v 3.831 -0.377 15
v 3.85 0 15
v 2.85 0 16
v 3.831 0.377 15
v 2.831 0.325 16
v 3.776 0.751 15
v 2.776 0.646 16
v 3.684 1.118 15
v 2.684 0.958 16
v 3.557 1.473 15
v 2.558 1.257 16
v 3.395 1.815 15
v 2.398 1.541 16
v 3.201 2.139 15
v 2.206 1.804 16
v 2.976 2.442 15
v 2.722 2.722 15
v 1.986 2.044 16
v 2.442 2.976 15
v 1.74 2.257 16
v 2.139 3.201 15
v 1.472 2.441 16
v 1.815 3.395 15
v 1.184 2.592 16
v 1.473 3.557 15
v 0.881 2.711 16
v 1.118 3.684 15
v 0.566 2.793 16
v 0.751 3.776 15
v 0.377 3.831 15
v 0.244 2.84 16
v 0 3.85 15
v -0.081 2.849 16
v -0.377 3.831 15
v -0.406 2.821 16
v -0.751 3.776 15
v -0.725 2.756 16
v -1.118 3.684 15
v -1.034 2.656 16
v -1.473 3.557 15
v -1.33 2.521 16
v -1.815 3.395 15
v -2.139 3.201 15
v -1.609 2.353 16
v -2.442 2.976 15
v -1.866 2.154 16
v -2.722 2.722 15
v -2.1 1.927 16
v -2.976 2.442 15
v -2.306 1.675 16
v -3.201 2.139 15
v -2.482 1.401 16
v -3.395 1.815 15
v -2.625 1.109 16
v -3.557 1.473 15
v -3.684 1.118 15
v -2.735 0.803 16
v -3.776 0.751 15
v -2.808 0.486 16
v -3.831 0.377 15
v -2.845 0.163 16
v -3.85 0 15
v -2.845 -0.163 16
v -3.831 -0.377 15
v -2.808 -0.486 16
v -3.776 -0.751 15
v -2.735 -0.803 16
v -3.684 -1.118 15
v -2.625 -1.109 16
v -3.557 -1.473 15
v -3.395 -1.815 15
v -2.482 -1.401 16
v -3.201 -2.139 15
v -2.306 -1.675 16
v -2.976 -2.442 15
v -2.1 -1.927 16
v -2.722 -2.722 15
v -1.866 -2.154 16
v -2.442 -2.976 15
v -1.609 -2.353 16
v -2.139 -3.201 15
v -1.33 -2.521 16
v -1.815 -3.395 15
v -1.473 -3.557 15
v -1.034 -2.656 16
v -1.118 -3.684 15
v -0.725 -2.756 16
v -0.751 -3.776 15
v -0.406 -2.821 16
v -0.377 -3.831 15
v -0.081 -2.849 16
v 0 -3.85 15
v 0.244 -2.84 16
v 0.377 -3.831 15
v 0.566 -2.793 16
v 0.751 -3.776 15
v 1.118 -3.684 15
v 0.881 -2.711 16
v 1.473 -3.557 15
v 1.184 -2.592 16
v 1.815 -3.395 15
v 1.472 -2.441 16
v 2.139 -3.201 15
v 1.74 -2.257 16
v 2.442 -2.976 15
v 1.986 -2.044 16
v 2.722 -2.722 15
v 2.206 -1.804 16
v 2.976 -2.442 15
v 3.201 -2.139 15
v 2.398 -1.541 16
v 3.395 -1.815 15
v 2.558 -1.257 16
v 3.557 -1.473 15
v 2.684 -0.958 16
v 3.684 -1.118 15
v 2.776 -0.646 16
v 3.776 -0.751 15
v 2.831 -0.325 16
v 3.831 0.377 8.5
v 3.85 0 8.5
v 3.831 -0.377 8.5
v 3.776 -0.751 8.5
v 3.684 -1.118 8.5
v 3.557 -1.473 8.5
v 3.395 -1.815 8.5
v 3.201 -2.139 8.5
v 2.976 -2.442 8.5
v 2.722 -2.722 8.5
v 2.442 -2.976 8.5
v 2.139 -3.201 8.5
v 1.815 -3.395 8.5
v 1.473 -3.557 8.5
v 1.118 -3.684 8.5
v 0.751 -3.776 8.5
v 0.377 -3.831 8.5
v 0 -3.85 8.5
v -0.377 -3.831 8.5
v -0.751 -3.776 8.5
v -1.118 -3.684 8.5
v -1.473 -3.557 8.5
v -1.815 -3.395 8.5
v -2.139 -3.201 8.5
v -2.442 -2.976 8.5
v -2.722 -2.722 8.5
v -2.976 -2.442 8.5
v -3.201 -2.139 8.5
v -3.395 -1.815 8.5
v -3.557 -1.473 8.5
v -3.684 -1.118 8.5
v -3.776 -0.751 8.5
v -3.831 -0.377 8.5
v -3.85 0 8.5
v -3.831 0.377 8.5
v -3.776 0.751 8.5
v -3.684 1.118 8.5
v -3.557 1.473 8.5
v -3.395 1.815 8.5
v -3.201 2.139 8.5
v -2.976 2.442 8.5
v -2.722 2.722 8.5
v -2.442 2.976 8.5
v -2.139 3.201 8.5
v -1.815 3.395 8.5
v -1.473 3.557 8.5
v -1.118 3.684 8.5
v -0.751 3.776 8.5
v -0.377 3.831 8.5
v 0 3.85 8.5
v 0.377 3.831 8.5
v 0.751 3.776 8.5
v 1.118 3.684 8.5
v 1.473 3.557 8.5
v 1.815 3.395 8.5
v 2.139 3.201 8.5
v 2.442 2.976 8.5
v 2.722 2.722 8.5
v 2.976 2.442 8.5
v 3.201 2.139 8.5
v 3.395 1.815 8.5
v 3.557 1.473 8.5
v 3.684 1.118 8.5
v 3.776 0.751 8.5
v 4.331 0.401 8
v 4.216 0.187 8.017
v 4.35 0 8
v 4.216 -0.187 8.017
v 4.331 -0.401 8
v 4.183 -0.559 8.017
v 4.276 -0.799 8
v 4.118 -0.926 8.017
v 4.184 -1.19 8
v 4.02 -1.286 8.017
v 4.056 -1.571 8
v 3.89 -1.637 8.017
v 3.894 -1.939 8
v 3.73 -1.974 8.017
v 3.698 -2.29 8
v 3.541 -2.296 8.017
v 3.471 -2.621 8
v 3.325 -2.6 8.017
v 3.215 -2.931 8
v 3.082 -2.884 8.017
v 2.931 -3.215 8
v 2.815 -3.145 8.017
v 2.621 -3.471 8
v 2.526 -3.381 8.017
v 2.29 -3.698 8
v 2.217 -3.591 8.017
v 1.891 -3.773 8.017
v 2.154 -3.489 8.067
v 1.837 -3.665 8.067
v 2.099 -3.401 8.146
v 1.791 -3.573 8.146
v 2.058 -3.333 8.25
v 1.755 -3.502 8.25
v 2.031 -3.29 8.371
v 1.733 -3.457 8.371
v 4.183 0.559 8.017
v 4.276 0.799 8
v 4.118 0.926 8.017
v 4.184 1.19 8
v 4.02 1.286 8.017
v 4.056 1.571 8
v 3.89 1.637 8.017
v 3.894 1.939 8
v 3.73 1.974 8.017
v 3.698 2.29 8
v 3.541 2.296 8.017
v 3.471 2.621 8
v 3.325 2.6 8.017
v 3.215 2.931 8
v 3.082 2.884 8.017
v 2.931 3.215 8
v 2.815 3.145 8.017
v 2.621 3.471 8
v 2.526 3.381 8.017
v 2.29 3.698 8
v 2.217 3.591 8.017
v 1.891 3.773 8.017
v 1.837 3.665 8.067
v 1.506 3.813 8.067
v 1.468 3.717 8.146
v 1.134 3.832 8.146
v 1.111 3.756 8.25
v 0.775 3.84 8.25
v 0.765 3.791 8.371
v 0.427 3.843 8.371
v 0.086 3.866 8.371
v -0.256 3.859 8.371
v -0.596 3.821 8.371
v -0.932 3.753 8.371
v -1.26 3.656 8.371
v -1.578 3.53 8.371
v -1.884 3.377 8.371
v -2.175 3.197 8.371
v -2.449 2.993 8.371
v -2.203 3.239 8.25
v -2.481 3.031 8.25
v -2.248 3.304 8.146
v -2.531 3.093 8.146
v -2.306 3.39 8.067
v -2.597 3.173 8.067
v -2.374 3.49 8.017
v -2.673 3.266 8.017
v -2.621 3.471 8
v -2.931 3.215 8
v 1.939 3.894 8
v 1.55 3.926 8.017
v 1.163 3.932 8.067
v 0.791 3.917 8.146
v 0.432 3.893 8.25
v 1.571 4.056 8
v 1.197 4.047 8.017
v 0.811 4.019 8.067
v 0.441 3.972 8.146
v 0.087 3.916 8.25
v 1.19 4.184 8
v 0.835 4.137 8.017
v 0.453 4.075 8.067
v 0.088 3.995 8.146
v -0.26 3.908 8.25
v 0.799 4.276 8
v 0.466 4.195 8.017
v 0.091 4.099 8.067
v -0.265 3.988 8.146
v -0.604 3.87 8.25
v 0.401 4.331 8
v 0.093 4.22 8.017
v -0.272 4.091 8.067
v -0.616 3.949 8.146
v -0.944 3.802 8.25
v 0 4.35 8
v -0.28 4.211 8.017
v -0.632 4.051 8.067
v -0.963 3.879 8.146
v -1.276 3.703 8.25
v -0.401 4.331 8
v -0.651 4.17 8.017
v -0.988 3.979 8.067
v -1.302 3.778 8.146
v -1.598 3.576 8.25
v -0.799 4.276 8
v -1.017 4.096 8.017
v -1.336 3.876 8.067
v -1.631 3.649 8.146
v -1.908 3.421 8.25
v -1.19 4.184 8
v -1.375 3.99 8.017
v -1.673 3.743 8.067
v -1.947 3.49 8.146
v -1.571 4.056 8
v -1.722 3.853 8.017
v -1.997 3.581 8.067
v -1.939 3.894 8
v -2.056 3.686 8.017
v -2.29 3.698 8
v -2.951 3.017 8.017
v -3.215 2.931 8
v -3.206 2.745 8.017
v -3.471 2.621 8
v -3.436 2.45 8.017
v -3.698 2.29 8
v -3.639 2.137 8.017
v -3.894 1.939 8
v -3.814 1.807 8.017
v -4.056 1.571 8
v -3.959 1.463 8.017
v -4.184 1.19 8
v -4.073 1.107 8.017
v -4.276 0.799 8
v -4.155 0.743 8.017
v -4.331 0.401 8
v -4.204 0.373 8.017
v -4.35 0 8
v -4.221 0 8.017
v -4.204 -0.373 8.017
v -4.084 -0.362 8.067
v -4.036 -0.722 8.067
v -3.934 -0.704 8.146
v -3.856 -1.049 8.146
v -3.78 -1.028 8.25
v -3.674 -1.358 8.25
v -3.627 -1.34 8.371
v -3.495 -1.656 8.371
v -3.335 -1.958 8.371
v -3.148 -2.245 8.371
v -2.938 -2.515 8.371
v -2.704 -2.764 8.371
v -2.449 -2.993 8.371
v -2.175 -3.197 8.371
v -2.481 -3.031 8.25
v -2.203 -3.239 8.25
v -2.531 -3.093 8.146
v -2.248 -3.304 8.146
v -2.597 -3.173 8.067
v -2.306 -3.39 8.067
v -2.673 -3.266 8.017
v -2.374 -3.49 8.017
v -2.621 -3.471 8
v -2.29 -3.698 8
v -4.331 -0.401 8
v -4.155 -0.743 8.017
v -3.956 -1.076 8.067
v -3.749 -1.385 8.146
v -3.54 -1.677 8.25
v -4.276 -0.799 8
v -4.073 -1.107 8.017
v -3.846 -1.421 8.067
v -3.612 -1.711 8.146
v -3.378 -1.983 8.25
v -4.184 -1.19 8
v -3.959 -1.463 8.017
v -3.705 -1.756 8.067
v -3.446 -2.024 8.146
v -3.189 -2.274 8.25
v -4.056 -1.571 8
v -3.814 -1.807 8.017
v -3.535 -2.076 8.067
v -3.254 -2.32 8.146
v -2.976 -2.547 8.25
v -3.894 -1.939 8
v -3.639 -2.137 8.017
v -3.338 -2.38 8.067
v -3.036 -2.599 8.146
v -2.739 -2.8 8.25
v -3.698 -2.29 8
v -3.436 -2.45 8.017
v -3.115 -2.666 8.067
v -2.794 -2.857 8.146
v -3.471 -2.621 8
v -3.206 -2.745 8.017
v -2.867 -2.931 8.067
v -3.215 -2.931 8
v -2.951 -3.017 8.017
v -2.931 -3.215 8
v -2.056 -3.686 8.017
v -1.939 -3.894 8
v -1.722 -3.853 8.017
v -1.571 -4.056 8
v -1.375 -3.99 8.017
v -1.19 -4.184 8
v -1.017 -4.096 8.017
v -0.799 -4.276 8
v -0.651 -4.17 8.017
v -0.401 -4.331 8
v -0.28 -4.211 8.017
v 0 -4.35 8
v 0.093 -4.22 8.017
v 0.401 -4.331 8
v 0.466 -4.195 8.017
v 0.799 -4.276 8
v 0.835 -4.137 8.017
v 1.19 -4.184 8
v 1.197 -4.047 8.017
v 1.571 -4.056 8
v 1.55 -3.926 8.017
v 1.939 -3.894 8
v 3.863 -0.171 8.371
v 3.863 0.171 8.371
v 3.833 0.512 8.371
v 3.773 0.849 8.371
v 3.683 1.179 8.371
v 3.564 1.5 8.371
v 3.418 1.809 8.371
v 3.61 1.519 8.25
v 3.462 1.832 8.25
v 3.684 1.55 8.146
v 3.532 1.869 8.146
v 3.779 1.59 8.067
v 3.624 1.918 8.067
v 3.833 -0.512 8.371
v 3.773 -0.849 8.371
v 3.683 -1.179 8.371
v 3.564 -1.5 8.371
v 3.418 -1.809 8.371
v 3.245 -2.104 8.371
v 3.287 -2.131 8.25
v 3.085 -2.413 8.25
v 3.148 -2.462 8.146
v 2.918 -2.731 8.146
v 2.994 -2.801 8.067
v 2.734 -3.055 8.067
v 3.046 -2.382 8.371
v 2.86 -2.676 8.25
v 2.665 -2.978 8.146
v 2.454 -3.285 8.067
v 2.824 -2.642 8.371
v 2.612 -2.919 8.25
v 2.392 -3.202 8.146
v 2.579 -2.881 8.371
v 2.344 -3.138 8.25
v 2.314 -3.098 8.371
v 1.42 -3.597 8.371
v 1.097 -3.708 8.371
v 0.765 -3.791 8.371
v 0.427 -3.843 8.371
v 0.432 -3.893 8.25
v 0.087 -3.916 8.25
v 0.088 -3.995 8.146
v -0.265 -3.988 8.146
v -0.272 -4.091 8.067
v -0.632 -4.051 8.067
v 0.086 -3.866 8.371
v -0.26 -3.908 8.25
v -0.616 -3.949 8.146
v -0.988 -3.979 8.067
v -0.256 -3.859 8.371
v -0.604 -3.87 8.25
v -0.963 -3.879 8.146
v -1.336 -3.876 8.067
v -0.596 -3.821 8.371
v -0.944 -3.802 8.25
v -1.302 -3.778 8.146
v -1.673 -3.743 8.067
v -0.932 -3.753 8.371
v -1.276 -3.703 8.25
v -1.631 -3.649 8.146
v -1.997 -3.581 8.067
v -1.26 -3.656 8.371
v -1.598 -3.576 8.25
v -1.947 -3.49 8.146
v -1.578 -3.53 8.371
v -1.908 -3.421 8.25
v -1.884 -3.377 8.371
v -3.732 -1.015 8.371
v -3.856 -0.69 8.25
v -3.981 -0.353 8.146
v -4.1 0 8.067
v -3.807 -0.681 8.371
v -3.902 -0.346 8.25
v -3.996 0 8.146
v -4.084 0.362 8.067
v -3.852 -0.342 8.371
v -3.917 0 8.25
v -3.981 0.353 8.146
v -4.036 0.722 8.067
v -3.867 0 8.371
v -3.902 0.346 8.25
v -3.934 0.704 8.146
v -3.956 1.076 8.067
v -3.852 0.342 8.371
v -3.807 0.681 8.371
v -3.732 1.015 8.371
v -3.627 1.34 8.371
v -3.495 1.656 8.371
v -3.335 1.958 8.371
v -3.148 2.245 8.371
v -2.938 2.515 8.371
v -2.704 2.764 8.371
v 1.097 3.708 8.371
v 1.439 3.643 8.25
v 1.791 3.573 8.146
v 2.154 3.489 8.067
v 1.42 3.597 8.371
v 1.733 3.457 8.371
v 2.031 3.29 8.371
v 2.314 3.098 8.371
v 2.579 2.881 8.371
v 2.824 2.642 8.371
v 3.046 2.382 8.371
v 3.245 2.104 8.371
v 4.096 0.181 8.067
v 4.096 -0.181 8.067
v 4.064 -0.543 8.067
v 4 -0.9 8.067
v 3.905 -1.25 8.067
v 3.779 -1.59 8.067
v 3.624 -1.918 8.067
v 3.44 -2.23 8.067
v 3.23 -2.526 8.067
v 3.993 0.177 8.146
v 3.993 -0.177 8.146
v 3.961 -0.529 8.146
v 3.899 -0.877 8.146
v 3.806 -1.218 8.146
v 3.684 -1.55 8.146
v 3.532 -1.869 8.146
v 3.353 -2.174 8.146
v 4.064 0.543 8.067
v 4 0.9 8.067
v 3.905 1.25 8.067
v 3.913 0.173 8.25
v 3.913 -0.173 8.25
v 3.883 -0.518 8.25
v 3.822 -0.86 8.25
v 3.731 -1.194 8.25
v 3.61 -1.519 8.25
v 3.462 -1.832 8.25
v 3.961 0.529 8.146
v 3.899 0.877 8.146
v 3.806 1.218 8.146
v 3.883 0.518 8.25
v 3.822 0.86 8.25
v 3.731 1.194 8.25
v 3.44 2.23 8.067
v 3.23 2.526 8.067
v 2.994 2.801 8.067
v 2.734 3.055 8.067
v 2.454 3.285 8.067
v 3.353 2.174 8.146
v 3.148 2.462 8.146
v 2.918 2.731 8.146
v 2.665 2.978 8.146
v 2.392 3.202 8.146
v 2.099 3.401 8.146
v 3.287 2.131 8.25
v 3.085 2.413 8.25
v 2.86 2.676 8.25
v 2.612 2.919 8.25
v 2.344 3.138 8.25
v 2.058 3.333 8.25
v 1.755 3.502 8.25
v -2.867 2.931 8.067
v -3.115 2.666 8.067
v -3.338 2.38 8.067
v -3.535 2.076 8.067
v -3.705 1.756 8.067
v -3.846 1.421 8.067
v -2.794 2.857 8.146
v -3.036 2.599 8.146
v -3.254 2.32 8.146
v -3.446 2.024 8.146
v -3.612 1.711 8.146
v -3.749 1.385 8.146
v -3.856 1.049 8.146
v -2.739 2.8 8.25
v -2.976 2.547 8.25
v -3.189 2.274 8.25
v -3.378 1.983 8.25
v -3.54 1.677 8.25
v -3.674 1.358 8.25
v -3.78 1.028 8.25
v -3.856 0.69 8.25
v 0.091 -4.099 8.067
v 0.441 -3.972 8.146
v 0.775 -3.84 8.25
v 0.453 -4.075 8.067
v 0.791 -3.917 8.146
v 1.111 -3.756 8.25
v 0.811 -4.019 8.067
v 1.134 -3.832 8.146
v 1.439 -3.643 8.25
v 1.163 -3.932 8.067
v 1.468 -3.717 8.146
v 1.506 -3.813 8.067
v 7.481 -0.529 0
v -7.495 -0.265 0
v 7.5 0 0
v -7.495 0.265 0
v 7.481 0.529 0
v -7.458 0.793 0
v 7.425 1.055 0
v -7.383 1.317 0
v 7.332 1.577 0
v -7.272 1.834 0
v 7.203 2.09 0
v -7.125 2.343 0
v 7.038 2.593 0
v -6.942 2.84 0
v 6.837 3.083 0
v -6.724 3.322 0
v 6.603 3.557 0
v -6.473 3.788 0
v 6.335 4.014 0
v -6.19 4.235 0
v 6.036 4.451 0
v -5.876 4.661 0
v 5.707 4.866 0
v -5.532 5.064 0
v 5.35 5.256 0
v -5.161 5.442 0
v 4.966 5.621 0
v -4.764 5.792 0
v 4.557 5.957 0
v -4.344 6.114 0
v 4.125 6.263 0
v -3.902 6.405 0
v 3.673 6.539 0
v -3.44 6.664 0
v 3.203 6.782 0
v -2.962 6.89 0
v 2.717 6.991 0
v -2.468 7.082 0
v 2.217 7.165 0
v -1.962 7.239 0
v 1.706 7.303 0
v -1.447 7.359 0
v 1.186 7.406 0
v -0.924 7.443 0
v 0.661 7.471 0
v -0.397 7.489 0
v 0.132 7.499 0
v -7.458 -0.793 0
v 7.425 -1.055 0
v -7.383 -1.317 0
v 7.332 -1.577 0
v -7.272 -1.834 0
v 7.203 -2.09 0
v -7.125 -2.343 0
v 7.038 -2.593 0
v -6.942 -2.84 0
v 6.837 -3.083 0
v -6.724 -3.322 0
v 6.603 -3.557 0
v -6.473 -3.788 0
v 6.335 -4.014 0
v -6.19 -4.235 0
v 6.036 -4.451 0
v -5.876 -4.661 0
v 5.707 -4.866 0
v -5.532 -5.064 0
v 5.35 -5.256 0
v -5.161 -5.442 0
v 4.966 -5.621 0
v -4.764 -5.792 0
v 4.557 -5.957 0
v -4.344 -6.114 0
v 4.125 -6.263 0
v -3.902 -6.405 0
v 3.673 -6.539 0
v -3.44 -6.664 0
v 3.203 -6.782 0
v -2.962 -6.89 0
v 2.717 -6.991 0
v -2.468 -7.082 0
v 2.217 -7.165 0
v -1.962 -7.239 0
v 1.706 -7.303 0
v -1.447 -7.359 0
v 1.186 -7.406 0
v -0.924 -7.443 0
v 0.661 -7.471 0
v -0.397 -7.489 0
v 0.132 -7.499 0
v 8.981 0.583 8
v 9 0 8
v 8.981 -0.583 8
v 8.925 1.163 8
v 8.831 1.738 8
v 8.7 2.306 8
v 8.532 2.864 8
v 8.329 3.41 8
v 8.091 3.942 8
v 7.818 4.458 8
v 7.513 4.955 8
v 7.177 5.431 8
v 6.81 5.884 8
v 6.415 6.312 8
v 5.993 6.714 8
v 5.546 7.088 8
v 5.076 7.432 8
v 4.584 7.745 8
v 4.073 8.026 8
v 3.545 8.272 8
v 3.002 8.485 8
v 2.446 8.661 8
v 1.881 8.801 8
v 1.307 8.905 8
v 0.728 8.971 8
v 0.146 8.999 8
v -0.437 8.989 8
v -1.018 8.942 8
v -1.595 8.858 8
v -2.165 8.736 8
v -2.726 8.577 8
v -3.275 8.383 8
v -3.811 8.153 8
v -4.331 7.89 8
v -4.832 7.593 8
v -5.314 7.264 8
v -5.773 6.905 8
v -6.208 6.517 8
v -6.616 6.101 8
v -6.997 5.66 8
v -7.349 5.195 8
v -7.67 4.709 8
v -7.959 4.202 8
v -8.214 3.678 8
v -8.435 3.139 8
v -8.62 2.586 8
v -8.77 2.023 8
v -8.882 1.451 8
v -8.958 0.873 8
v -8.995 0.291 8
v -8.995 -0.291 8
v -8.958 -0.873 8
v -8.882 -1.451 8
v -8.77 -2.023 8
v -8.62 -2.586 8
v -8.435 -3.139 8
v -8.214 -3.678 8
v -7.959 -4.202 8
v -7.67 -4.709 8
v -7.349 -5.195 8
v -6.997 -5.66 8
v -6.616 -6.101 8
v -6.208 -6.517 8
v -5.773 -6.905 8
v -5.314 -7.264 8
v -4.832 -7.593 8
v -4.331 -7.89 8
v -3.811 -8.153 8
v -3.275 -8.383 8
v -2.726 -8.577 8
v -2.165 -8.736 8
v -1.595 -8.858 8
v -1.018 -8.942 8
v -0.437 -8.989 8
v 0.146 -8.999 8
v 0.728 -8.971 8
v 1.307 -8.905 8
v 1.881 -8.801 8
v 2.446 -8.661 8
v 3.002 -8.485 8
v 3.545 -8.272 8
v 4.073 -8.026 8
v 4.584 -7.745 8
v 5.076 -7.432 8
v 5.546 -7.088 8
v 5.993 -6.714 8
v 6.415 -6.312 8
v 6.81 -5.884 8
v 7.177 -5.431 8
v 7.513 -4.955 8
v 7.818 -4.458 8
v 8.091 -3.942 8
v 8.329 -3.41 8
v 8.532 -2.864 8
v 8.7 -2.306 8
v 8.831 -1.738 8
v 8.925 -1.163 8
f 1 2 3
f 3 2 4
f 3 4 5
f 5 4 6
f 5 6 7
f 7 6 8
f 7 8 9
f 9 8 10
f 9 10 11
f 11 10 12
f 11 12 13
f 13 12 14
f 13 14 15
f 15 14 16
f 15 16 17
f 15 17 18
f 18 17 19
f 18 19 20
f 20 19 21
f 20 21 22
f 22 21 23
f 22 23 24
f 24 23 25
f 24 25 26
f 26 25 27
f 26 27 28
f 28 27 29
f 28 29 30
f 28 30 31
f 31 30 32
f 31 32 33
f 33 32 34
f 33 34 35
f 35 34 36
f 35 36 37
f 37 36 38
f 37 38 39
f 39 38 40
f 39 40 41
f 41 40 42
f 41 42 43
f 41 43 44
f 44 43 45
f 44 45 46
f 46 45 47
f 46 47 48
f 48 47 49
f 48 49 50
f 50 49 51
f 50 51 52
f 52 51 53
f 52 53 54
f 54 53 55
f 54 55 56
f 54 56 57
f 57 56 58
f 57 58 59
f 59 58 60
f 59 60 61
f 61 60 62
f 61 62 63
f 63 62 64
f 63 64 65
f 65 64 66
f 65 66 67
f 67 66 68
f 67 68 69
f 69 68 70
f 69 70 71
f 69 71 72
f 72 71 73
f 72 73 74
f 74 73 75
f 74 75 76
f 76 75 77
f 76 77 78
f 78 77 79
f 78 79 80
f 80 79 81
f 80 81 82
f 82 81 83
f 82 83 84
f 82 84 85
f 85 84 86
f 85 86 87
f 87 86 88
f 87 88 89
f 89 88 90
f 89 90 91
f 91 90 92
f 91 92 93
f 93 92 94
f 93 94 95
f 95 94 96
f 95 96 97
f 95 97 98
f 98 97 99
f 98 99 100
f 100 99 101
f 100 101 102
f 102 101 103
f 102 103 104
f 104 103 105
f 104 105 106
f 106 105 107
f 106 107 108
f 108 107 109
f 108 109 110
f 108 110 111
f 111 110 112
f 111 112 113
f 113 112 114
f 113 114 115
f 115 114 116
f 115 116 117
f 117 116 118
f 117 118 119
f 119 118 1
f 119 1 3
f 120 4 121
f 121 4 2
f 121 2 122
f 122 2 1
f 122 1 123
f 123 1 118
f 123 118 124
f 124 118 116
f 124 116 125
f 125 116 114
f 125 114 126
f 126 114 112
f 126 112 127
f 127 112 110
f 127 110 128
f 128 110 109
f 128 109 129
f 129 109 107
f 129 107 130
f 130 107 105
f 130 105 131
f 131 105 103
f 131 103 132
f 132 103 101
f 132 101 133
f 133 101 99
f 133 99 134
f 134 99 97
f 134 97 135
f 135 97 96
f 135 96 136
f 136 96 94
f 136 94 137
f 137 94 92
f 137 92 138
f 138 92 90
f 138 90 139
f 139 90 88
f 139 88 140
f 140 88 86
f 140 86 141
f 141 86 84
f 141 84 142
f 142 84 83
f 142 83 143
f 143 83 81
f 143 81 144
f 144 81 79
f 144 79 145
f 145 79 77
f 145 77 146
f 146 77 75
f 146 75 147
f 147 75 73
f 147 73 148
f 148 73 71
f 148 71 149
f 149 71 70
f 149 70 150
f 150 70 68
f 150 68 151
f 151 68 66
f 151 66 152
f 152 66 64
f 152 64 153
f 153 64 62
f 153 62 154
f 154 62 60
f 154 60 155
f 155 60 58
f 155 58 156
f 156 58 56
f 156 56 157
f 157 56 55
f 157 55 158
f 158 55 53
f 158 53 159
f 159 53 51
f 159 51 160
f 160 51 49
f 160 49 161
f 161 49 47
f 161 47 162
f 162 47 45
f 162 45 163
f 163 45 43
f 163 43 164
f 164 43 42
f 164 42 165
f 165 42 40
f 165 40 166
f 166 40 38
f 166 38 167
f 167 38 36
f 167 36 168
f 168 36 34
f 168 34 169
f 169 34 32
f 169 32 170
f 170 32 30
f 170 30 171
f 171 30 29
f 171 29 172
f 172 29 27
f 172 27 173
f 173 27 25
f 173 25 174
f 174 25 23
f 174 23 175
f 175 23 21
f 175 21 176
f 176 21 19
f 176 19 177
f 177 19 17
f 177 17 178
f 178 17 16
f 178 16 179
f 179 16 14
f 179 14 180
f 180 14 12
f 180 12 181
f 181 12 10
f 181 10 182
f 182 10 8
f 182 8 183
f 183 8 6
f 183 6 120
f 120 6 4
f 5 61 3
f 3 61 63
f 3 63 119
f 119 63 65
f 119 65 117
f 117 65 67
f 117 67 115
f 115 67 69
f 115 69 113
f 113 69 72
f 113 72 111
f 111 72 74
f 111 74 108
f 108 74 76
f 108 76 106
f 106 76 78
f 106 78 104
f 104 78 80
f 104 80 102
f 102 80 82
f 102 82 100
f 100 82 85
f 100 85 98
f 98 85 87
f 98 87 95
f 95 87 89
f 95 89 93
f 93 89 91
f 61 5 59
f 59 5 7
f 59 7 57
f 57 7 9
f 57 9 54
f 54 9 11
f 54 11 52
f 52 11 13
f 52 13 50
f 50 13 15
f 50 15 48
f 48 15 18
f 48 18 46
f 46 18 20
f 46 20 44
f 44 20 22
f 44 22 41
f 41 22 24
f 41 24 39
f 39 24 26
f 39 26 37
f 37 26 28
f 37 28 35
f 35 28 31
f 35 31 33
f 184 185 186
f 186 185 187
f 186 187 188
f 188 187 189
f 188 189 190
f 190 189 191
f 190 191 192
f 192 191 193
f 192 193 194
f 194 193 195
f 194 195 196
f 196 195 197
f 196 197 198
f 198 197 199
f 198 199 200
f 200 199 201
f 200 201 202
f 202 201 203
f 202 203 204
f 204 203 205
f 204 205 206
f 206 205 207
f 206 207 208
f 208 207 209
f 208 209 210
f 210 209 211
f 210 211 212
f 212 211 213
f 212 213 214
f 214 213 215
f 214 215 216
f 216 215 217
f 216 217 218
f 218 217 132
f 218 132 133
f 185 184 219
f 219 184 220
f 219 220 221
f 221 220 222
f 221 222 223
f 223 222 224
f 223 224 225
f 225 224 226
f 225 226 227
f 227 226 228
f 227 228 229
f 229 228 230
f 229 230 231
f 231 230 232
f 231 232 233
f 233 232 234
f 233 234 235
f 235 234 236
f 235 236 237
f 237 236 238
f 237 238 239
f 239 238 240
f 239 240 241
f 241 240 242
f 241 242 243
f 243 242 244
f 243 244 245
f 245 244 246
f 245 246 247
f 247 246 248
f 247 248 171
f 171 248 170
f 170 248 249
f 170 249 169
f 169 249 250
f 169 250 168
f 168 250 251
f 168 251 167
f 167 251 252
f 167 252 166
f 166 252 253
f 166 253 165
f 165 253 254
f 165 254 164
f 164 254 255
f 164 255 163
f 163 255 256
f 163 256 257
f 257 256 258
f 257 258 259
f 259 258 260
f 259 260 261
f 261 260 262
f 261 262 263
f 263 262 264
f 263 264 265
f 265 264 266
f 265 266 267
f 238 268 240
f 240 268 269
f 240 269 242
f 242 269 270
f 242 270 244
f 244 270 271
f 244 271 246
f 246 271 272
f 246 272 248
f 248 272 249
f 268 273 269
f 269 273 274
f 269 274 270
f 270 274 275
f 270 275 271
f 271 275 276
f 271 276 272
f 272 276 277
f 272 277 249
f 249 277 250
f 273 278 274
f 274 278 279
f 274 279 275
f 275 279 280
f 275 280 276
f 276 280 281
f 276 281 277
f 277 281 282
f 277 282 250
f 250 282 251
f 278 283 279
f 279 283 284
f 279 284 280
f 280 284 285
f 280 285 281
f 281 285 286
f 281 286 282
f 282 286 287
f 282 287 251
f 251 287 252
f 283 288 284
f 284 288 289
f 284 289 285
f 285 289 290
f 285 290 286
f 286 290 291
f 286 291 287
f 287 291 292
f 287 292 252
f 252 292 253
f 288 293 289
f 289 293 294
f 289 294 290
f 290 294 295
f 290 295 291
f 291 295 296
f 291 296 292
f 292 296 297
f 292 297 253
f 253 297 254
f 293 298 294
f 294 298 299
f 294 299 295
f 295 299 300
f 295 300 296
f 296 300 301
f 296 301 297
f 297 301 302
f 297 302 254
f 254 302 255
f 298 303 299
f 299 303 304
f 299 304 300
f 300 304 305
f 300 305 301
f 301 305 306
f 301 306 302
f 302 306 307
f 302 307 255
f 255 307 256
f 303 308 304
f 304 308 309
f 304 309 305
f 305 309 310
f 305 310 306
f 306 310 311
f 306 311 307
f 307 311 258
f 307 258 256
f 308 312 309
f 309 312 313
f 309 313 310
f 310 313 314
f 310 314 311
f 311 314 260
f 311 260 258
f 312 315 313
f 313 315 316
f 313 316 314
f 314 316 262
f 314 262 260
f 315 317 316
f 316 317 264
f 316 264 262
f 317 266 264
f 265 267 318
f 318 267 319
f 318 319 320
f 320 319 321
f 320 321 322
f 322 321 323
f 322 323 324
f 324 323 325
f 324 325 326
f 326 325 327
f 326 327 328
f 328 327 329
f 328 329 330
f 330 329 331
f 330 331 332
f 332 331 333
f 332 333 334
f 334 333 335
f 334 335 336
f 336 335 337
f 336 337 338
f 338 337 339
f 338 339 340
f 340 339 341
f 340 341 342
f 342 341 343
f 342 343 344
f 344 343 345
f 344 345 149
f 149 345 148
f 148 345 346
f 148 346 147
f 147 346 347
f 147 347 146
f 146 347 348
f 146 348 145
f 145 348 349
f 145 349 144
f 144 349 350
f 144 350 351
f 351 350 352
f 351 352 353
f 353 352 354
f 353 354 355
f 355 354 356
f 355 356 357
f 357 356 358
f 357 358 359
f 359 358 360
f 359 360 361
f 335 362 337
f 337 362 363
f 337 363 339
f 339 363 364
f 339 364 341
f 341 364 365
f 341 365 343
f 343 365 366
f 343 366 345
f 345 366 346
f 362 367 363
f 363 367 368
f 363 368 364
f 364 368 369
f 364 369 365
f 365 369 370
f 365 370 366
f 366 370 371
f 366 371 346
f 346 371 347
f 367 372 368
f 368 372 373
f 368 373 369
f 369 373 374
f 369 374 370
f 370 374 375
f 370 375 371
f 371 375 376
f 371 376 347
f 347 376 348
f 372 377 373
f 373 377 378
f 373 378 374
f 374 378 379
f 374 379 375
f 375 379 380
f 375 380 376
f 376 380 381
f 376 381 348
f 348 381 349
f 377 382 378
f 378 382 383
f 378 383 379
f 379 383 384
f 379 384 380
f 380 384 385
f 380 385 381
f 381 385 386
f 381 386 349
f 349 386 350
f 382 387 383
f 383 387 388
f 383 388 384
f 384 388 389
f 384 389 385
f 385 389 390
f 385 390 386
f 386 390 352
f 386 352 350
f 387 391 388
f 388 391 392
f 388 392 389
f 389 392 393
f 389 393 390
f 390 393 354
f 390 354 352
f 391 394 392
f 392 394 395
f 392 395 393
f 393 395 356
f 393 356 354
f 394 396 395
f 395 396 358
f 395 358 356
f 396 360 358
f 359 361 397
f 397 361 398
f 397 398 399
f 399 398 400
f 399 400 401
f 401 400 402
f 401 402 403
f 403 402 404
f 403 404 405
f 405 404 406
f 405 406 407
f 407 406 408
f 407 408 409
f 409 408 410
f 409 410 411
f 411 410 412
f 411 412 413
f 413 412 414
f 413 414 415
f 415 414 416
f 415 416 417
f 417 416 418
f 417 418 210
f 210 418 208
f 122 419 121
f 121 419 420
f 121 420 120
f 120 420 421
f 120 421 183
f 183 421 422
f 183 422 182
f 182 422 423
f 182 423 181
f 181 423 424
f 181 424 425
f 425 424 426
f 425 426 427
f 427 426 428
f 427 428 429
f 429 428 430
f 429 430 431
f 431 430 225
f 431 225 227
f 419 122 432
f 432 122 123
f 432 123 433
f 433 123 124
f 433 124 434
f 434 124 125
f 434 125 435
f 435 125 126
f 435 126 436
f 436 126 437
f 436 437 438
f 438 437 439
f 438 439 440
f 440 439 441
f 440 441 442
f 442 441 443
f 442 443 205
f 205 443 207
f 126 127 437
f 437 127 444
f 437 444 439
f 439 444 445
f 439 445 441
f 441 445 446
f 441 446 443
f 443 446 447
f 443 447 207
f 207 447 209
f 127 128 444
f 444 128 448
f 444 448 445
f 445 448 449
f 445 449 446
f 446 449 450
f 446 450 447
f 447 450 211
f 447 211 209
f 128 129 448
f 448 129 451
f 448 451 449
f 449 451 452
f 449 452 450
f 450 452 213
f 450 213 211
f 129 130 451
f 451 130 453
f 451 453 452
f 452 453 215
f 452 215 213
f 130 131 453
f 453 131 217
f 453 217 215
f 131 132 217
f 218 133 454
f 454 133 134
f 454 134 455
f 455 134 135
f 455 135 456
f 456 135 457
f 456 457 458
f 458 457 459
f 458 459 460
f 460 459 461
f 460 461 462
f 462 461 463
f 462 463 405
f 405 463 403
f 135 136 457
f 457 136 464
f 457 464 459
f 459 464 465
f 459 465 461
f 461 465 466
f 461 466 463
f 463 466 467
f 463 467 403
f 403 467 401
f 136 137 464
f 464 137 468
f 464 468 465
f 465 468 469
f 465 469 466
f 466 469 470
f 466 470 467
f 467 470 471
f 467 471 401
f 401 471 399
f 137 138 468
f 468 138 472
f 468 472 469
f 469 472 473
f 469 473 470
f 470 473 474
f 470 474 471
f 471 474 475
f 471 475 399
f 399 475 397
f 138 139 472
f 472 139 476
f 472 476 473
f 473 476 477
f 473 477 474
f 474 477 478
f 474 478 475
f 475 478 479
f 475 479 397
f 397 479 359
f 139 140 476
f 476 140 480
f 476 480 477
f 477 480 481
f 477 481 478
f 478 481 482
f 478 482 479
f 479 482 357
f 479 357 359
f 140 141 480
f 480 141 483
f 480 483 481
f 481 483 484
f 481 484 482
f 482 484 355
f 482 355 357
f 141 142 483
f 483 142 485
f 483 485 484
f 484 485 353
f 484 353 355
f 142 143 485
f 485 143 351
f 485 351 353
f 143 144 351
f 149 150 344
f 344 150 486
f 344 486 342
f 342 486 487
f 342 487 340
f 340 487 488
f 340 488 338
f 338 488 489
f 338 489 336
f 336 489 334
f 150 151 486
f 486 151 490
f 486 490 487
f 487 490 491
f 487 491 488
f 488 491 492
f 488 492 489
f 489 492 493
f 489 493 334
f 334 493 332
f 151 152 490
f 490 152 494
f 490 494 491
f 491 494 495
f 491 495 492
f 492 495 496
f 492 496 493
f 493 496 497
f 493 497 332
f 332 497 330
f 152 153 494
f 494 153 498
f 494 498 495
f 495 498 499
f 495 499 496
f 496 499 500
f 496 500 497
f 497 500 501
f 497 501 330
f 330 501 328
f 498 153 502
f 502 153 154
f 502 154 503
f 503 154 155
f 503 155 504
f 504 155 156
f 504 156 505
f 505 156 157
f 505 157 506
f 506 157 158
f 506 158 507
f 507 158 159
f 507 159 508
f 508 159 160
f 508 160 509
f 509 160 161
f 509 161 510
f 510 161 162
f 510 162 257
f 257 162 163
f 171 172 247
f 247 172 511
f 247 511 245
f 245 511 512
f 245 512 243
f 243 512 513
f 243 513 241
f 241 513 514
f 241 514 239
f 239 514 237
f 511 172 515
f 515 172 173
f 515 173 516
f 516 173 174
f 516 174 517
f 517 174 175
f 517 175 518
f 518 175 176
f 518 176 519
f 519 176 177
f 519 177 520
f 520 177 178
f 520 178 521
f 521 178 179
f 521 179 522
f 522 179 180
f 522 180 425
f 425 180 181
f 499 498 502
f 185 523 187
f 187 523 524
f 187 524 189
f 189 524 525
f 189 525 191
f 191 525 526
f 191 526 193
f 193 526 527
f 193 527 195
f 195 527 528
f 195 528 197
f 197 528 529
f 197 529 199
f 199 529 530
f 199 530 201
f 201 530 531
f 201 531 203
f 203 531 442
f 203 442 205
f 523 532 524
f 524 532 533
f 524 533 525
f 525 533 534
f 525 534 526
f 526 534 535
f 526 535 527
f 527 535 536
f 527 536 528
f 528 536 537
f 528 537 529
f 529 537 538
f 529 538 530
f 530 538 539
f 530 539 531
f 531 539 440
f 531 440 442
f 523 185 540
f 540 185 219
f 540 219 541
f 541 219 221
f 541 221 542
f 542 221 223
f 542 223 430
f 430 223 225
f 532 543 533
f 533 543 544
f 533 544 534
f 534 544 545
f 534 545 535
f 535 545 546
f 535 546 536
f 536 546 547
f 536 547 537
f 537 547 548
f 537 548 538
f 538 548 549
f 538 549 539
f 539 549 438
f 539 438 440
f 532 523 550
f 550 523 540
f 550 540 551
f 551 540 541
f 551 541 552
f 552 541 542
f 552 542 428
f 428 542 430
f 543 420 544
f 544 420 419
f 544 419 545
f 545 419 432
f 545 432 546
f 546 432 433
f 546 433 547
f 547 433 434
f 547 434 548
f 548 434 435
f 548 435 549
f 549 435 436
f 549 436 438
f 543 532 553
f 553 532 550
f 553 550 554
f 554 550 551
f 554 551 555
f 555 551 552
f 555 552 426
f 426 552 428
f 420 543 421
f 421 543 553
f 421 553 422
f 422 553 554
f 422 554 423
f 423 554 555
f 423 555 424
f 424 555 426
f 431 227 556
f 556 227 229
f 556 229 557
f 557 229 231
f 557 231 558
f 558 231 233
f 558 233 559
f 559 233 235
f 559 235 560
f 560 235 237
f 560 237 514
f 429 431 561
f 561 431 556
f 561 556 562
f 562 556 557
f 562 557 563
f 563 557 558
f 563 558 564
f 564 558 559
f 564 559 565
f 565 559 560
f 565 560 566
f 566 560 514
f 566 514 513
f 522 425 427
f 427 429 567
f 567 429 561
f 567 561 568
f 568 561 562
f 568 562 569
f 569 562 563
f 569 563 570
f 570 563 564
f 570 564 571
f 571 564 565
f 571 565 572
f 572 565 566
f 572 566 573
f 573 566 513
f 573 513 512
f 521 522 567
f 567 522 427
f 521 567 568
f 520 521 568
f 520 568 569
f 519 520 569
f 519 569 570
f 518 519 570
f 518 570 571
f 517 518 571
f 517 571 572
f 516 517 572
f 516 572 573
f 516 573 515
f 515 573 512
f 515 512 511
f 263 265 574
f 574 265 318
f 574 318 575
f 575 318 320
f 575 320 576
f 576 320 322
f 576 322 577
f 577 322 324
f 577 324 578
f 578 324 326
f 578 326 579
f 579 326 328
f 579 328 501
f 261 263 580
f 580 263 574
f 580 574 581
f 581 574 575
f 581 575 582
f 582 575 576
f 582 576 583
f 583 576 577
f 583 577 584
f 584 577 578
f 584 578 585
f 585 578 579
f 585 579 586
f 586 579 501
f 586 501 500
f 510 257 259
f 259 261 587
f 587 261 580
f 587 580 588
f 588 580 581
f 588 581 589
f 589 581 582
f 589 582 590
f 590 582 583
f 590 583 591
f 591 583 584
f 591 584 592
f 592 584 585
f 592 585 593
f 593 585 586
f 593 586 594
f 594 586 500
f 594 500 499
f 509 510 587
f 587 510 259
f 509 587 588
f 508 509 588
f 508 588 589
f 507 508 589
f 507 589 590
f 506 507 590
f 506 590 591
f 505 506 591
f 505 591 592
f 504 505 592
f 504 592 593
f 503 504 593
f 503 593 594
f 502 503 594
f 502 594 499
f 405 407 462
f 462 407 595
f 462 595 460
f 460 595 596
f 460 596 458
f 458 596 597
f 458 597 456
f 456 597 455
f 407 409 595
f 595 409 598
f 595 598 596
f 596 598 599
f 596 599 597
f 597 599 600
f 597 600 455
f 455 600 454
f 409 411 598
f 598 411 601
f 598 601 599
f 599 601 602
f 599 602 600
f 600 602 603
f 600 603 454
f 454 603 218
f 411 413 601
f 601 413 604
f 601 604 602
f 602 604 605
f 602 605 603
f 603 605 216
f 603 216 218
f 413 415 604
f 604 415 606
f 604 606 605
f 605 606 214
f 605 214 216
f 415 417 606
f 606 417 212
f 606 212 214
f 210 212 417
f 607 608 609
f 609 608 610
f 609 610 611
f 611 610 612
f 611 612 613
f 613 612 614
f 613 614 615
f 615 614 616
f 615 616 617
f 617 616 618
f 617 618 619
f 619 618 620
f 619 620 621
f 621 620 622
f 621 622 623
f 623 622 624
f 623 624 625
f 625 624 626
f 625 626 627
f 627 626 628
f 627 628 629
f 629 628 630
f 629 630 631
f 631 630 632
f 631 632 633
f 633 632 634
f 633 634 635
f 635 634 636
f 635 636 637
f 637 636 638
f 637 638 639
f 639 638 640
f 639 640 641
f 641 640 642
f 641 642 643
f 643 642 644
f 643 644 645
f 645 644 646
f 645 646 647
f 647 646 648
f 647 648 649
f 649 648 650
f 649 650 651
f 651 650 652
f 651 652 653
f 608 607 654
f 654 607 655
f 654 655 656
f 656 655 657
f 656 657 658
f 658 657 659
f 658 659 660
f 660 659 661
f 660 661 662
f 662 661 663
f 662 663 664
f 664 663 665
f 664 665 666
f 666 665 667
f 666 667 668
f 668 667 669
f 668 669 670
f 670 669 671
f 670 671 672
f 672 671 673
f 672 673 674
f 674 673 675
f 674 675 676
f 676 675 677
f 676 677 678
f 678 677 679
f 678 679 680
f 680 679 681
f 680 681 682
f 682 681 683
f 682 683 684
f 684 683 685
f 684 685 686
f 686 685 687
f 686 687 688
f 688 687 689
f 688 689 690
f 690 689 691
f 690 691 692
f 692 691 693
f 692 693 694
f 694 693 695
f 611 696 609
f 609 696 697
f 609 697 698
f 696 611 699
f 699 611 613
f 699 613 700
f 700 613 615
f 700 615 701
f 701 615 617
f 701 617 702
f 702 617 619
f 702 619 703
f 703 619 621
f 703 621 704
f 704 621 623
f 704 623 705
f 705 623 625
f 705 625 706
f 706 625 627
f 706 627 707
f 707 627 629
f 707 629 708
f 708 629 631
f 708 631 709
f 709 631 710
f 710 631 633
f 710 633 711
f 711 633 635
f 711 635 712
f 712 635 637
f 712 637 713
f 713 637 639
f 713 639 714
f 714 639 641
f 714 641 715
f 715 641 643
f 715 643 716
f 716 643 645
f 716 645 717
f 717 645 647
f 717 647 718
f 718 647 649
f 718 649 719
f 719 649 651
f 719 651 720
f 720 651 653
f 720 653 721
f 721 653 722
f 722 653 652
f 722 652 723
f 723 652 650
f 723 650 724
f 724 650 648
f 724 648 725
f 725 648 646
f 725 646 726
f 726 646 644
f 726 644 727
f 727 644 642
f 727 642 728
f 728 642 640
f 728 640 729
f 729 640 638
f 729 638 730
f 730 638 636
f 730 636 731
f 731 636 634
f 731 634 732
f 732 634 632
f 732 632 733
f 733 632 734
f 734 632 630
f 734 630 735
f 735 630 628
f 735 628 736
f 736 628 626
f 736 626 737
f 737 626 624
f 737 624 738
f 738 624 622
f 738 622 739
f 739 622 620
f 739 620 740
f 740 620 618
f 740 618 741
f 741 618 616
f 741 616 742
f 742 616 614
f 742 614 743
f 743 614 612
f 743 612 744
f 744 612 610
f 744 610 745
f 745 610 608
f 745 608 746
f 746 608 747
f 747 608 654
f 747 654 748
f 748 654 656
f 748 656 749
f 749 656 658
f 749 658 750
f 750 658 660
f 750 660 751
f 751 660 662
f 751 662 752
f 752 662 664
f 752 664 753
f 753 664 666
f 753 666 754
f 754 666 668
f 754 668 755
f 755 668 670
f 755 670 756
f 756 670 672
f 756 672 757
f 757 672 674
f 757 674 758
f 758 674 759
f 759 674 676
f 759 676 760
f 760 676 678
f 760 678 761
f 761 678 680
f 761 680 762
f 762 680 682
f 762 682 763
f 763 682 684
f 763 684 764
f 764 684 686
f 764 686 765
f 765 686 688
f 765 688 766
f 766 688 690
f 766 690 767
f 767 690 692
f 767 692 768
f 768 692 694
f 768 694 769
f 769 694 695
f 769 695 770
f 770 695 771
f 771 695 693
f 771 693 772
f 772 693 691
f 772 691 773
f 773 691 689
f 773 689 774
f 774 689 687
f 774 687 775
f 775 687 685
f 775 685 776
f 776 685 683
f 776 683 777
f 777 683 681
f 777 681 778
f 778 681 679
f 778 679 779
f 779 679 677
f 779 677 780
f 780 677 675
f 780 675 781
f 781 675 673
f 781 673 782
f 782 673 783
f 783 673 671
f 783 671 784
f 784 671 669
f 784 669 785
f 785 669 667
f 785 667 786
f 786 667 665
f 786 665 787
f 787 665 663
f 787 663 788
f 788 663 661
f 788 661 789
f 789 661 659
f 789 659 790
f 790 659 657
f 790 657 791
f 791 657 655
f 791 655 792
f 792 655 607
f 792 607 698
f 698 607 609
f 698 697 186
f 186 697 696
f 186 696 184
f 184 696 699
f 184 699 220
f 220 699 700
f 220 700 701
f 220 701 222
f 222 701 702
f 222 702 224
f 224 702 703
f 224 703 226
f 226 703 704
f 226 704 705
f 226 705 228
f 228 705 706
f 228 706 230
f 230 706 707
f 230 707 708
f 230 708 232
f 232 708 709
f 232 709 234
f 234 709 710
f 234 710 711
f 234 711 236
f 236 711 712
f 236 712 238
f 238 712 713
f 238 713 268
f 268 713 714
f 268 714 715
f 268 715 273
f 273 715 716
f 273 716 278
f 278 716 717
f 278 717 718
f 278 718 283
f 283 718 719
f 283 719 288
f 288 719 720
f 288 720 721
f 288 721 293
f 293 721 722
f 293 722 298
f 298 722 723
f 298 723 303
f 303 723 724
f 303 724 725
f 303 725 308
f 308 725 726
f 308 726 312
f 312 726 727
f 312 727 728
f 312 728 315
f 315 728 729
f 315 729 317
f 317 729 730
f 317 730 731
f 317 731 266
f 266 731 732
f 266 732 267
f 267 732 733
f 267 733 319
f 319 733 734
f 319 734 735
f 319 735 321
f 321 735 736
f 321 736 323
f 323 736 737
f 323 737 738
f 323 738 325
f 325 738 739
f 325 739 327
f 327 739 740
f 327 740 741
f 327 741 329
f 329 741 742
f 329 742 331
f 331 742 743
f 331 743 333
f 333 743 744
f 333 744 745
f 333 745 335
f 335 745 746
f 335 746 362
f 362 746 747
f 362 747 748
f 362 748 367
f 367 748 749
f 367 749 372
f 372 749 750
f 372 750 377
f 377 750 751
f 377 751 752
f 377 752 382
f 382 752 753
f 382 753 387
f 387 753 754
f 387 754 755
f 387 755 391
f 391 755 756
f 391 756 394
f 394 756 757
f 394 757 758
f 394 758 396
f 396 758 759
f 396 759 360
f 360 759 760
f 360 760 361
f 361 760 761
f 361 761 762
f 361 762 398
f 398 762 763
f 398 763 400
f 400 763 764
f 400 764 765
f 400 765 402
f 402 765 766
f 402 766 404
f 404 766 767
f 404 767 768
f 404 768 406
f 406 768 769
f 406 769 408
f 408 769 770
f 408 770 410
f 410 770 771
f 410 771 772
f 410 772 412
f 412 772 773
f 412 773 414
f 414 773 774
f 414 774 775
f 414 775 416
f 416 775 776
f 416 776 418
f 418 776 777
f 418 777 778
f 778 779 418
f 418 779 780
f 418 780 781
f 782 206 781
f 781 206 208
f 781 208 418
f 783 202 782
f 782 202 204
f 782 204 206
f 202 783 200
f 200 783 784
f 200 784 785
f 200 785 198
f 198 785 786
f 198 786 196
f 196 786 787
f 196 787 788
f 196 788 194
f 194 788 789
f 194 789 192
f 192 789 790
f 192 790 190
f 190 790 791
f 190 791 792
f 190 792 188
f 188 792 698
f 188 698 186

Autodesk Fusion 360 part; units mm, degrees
sketch "Sketch1" plane through (0, 0, 0) normal (0, 1, 0) x (1, 0, 0)
  line L0 (0, 0) -> (7.5, 0)
  line L1 (7.5, 0) -> (9, -8)
  line L2 (9, -8) -> (4.35, -8)
  line L3 (3.85, -8.5) -> (3.85, -16)
  line L4 (3.85, -16) -> (0, -16)
  line L5 (0, -16) -> (0, 0)
  arc A0 (4.35, -8) -> (3.85, -8.5) centre (4.35, -8.5) ccw
  point P0 (3.85, -8)
  dimension "d1" = 7.5
  dimension "d2" = 8
  dimension "d3" = 3.85
  dimension "d4" = 8
  dimension "d5" = 0.5
revolve "Revolve1" add sketch "Sketch1" angle 360 about axis through (0, 0, 16) along (0, 0, -1)
chamfer "Chamfer1" distance 1 angle 45 1 edges at (-3.5895, -1.3922, 16)
